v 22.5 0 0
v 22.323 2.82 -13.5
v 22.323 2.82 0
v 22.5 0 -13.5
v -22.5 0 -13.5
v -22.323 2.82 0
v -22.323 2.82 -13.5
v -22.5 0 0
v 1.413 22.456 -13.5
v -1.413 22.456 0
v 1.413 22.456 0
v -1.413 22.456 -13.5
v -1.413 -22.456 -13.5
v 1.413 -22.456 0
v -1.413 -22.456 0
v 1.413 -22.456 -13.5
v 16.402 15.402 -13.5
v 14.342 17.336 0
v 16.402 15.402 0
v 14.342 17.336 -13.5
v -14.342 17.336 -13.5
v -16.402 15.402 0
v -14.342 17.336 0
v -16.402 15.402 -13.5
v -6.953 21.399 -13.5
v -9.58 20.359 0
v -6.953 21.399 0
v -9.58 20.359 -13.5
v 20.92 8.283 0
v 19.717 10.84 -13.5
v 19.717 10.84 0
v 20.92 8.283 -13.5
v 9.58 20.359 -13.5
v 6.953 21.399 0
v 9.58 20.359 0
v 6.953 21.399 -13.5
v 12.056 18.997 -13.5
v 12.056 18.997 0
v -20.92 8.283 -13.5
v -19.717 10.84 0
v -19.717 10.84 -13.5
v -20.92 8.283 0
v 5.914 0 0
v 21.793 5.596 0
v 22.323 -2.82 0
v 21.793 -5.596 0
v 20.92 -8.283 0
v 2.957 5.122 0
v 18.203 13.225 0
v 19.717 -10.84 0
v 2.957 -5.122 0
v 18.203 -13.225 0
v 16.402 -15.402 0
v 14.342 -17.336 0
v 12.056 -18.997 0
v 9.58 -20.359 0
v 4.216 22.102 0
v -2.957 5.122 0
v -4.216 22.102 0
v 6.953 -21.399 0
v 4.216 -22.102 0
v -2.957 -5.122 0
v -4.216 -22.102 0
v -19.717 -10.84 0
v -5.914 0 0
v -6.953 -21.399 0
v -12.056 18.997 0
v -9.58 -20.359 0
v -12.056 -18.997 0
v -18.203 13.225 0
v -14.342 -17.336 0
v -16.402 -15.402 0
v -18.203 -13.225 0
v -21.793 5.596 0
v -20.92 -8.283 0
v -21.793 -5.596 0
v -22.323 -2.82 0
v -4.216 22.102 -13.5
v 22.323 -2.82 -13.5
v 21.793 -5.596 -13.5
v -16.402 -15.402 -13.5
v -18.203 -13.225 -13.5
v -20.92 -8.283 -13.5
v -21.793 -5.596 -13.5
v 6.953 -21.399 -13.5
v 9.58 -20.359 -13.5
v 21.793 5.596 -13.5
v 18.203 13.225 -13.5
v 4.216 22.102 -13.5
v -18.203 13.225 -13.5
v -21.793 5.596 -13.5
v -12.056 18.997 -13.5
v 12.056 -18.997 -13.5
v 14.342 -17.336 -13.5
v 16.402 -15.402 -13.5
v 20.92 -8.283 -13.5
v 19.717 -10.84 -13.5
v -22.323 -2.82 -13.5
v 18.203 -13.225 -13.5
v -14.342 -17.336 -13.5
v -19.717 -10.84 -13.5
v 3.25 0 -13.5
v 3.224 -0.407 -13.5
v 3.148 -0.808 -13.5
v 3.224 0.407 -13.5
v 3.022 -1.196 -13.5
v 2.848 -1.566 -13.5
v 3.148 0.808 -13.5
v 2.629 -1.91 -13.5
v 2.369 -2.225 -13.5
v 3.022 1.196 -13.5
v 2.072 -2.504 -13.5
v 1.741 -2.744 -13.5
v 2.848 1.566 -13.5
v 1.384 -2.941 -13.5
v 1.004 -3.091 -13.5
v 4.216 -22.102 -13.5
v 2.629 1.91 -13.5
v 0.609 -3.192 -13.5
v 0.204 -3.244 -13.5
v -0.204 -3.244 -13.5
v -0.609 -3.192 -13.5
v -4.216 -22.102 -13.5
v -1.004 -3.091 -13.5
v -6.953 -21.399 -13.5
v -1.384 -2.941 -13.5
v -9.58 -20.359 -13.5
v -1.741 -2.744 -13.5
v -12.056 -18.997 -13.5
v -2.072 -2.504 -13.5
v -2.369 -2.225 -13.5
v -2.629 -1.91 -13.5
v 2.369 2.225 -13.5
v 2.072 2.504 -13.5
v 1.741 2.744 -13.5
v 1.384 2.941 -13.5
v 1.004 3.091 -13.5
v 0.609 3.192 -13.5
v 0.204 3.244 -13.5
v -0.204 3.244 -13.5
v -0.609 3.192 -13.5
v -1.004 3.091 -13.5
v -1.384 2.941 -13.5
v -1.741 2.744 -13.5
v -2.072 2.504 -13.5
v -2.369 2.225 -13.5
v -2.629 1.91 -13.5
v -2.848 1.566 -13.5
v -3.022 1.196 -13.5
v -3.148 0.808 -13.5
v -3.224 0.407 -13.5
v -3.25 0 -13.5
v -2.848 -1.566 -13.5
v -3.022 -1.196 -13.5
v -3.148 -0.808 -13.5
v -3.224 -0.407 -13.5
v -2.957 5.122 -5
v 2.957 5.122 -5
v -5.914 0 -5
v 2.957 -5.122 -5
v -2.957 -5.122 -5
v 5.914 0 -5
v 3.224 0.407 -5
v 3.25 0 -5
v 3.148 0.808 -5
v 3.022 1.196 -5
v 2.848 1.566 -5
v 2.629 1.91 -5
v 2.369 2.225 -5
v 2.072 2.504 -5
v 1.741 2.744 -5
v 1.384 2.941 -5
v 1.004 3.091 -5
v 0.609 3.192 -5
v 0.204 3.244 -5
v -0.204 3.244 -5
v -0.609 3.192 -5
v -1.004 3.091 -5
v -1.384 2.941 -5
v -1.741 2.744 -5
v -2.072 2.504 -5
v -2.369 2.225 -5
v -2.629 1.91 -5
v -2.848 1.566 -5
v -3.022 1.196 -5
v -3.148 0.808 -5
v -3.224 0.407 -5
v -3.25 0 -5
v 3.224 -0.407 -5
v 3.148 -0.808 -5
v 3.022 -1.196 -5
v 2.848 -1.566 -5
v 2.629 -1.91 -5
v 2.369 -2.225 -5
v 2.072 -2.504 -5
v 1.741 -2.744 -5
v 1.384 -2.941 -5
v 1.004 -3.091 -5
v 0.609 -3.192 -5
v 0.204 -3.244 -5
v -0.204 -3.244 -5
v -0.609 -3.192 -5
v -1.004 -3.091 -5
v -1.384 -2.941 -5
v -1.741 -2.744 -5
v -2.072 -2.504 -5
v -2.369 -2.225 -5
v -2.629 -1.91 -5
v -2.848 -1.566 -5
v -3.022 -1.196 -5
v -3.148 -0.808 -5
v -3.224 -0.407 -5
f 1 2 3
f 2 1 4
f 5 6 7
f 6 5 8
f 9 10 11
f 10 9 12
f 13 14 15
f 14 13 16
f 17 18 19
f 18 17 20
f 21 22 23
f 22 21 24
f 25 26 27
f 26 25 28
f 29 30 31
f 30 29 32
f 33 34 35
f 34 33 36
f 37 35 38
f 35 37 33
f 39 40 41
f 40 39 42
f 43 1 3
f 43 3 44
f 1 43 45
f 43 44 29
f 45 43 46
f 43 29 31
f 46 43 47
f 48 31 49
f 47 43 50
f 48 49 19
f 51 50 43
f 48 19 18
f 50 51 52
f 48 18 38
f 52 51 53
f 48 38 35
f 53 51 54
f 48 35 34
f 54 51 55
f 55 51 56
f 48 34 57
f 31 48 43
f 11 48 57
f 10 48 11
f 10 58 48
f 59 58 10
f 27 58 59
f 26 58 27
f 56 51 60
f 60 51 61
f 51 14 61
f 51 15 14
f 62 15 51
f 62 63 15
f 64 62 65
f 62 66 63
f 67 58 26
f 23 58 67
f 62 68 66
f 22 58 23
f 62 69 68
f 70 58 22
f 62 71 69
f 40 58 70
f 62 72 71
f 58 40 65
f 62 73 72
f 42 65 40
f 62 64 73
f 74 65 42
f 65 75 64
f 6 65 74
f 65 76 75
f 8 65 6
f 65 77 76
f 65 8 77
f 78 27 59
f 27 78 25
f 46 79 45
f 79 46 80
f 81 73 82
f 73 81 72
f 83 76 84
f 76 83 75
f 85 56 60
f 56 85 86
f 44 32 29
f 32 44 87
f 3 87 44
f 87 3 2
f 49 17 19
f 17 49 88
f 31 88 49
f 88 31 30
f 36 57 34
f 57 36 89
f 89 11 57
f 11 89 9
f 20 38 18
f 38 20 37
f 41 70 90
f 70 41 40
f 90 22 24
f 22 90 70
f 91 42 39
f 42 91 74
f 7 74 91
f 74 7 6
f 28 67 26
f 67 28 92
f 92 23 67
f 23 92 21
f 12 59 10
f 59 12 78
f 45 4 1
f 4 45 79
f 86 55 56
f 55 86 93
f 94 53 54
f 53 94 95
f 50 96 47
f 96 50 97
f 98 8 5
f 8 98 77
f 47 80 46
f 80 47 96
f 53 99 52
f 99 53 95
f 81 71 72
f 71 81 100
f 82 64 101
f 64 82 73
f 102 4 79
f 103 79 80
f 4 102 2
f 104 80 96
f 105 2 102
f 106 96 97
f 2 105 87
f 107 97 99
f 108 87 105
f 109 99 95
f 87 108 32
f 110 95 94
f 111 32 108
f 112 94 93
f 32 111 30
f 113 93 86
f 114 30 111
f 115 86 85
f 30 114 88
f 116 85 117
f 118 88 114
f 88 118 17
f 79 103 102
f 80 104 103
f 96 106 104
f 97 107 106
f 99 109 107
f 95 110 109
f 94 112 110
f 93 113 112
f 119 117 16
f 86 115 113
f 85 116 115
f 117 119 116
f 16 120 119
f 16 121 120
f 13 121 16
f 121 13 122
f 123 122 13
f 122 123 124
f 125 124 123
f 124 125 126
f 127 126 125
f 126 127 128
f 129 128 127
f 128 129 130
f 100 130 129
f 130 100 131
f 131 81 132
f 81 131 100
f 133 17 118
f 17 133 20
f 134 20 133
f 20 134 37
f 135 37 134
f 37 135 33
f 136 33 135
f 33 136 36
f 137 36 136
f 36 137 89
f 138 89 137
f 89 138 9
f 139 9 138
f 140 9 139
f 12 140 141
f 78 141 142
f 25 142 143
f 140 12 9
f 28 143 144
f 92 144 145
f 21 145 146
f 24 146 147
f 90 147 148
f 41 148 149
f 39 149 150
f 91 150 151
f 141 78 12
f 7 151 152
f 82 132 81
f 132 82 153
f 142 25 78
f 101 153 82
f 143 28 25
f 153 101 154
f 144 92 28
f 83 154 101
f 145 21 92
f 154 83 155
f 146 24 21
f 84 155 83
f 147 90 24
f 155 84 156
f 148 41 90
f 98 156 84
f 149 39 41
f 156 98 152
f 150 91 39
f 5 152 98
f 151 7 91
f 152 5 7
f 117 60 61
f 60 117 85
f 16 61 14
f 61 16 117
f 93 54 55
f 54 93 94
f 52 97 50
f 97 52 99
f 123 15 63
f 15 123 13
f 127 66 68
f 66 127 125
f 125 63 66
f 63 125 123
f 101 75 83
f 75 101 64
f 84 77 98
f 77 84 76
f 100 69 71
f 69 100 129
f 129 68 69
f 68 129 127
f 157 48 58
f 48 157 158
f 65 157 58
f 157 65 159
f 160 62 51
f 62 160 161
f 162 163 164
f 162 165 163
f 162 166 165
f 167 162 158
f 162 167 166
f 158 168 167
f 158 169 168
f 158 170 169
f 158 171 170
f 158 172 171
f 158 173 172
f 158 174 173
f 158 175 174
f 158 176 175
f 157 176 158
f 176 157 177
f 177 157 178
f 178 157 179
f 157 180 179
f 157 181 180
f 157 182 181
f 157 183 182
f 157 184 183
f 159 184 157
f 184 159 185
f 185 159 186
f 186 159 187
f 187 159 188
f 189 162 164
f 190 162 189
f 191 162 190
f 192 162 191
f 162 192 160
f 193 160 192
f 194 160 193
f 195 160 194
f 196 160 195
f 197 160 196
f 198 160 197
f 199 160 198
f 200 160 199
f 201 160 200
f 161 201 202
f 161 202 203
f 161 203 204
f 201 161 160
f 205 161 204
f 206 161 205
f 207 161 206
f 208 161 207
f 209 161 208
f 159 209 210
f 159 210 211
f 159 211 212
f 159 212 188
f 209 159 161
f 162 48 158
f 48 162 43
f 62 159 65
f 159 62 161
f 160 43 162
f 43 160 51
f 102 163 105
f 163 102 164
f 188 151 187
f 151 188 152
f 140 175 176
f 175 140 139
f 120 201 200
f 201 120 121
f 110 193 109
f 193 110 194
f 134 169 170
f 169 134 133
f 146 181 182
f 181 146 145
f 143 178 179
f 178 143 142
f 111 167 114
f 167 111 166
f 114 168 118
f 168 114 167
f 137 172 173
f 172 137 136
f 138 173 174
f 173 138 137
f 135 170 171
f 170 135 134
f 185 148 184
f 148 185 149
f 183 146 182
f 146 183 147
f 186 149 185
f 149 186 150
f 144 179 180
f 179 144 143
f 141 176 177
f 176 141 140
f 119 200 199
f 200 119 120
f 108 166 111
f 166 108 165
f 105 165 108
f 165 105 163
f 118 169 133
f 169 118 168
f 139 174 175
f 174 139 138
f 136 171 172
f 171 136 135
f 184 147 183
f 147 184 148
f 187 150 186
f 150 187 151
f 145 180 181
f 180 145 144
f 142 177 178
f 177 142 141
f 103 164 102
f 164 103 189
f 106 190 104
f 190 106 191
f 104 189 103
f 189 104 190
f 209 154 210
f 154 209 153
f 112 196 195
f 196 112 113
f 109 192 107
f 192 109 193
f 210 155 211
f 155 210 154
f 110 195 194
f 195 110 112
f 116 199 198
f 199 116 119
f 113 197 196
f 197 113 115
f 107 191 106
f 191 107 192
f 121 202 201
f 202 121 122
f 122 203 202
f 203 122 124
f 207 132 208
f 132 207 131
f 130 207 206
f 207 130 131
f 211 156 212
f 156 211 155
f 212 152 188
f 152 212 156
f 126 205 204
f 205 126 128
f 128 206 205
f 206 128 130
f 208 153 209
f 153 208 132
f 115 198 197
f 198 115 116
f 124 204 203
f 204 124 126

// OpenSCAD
$fn = 50;


difference() {
	union() {
		translate(v = [0, 0, -13.5000000000]) {
			cylinder(h = 13.5000000000, r = 22.5000000000);
		}
		#translate(v = [0, 0, -15.0000000000]) {
			cylinder(h = 15, r = 2.8750000000);
		}
	}
	union() {
		translate(v = [0, 0, 0]) {
			rotate(a = [0, 0, 0]) {
				difference() {
					union() {
						translate(v = [0, 0, -5]) {
							linear_extrude(height = 5) {
								polygon(points = [[5.9142500000, 0.0000000000], [2.9571250000, 5.1218907443], [-2.9571250000, 5.1218907443], [-5.9142500000, 0.0000000000], [-2.9571250000, -5.1218907443], [2.9571250000, -5.1218907443]]);
							}
						}
					}
					union();
				}
			}
		}
		#translate(v = [0, 0, -100.0000000000]) {
			cylinder(h = 200, r = 3.2500000000);
		}
	}
}
